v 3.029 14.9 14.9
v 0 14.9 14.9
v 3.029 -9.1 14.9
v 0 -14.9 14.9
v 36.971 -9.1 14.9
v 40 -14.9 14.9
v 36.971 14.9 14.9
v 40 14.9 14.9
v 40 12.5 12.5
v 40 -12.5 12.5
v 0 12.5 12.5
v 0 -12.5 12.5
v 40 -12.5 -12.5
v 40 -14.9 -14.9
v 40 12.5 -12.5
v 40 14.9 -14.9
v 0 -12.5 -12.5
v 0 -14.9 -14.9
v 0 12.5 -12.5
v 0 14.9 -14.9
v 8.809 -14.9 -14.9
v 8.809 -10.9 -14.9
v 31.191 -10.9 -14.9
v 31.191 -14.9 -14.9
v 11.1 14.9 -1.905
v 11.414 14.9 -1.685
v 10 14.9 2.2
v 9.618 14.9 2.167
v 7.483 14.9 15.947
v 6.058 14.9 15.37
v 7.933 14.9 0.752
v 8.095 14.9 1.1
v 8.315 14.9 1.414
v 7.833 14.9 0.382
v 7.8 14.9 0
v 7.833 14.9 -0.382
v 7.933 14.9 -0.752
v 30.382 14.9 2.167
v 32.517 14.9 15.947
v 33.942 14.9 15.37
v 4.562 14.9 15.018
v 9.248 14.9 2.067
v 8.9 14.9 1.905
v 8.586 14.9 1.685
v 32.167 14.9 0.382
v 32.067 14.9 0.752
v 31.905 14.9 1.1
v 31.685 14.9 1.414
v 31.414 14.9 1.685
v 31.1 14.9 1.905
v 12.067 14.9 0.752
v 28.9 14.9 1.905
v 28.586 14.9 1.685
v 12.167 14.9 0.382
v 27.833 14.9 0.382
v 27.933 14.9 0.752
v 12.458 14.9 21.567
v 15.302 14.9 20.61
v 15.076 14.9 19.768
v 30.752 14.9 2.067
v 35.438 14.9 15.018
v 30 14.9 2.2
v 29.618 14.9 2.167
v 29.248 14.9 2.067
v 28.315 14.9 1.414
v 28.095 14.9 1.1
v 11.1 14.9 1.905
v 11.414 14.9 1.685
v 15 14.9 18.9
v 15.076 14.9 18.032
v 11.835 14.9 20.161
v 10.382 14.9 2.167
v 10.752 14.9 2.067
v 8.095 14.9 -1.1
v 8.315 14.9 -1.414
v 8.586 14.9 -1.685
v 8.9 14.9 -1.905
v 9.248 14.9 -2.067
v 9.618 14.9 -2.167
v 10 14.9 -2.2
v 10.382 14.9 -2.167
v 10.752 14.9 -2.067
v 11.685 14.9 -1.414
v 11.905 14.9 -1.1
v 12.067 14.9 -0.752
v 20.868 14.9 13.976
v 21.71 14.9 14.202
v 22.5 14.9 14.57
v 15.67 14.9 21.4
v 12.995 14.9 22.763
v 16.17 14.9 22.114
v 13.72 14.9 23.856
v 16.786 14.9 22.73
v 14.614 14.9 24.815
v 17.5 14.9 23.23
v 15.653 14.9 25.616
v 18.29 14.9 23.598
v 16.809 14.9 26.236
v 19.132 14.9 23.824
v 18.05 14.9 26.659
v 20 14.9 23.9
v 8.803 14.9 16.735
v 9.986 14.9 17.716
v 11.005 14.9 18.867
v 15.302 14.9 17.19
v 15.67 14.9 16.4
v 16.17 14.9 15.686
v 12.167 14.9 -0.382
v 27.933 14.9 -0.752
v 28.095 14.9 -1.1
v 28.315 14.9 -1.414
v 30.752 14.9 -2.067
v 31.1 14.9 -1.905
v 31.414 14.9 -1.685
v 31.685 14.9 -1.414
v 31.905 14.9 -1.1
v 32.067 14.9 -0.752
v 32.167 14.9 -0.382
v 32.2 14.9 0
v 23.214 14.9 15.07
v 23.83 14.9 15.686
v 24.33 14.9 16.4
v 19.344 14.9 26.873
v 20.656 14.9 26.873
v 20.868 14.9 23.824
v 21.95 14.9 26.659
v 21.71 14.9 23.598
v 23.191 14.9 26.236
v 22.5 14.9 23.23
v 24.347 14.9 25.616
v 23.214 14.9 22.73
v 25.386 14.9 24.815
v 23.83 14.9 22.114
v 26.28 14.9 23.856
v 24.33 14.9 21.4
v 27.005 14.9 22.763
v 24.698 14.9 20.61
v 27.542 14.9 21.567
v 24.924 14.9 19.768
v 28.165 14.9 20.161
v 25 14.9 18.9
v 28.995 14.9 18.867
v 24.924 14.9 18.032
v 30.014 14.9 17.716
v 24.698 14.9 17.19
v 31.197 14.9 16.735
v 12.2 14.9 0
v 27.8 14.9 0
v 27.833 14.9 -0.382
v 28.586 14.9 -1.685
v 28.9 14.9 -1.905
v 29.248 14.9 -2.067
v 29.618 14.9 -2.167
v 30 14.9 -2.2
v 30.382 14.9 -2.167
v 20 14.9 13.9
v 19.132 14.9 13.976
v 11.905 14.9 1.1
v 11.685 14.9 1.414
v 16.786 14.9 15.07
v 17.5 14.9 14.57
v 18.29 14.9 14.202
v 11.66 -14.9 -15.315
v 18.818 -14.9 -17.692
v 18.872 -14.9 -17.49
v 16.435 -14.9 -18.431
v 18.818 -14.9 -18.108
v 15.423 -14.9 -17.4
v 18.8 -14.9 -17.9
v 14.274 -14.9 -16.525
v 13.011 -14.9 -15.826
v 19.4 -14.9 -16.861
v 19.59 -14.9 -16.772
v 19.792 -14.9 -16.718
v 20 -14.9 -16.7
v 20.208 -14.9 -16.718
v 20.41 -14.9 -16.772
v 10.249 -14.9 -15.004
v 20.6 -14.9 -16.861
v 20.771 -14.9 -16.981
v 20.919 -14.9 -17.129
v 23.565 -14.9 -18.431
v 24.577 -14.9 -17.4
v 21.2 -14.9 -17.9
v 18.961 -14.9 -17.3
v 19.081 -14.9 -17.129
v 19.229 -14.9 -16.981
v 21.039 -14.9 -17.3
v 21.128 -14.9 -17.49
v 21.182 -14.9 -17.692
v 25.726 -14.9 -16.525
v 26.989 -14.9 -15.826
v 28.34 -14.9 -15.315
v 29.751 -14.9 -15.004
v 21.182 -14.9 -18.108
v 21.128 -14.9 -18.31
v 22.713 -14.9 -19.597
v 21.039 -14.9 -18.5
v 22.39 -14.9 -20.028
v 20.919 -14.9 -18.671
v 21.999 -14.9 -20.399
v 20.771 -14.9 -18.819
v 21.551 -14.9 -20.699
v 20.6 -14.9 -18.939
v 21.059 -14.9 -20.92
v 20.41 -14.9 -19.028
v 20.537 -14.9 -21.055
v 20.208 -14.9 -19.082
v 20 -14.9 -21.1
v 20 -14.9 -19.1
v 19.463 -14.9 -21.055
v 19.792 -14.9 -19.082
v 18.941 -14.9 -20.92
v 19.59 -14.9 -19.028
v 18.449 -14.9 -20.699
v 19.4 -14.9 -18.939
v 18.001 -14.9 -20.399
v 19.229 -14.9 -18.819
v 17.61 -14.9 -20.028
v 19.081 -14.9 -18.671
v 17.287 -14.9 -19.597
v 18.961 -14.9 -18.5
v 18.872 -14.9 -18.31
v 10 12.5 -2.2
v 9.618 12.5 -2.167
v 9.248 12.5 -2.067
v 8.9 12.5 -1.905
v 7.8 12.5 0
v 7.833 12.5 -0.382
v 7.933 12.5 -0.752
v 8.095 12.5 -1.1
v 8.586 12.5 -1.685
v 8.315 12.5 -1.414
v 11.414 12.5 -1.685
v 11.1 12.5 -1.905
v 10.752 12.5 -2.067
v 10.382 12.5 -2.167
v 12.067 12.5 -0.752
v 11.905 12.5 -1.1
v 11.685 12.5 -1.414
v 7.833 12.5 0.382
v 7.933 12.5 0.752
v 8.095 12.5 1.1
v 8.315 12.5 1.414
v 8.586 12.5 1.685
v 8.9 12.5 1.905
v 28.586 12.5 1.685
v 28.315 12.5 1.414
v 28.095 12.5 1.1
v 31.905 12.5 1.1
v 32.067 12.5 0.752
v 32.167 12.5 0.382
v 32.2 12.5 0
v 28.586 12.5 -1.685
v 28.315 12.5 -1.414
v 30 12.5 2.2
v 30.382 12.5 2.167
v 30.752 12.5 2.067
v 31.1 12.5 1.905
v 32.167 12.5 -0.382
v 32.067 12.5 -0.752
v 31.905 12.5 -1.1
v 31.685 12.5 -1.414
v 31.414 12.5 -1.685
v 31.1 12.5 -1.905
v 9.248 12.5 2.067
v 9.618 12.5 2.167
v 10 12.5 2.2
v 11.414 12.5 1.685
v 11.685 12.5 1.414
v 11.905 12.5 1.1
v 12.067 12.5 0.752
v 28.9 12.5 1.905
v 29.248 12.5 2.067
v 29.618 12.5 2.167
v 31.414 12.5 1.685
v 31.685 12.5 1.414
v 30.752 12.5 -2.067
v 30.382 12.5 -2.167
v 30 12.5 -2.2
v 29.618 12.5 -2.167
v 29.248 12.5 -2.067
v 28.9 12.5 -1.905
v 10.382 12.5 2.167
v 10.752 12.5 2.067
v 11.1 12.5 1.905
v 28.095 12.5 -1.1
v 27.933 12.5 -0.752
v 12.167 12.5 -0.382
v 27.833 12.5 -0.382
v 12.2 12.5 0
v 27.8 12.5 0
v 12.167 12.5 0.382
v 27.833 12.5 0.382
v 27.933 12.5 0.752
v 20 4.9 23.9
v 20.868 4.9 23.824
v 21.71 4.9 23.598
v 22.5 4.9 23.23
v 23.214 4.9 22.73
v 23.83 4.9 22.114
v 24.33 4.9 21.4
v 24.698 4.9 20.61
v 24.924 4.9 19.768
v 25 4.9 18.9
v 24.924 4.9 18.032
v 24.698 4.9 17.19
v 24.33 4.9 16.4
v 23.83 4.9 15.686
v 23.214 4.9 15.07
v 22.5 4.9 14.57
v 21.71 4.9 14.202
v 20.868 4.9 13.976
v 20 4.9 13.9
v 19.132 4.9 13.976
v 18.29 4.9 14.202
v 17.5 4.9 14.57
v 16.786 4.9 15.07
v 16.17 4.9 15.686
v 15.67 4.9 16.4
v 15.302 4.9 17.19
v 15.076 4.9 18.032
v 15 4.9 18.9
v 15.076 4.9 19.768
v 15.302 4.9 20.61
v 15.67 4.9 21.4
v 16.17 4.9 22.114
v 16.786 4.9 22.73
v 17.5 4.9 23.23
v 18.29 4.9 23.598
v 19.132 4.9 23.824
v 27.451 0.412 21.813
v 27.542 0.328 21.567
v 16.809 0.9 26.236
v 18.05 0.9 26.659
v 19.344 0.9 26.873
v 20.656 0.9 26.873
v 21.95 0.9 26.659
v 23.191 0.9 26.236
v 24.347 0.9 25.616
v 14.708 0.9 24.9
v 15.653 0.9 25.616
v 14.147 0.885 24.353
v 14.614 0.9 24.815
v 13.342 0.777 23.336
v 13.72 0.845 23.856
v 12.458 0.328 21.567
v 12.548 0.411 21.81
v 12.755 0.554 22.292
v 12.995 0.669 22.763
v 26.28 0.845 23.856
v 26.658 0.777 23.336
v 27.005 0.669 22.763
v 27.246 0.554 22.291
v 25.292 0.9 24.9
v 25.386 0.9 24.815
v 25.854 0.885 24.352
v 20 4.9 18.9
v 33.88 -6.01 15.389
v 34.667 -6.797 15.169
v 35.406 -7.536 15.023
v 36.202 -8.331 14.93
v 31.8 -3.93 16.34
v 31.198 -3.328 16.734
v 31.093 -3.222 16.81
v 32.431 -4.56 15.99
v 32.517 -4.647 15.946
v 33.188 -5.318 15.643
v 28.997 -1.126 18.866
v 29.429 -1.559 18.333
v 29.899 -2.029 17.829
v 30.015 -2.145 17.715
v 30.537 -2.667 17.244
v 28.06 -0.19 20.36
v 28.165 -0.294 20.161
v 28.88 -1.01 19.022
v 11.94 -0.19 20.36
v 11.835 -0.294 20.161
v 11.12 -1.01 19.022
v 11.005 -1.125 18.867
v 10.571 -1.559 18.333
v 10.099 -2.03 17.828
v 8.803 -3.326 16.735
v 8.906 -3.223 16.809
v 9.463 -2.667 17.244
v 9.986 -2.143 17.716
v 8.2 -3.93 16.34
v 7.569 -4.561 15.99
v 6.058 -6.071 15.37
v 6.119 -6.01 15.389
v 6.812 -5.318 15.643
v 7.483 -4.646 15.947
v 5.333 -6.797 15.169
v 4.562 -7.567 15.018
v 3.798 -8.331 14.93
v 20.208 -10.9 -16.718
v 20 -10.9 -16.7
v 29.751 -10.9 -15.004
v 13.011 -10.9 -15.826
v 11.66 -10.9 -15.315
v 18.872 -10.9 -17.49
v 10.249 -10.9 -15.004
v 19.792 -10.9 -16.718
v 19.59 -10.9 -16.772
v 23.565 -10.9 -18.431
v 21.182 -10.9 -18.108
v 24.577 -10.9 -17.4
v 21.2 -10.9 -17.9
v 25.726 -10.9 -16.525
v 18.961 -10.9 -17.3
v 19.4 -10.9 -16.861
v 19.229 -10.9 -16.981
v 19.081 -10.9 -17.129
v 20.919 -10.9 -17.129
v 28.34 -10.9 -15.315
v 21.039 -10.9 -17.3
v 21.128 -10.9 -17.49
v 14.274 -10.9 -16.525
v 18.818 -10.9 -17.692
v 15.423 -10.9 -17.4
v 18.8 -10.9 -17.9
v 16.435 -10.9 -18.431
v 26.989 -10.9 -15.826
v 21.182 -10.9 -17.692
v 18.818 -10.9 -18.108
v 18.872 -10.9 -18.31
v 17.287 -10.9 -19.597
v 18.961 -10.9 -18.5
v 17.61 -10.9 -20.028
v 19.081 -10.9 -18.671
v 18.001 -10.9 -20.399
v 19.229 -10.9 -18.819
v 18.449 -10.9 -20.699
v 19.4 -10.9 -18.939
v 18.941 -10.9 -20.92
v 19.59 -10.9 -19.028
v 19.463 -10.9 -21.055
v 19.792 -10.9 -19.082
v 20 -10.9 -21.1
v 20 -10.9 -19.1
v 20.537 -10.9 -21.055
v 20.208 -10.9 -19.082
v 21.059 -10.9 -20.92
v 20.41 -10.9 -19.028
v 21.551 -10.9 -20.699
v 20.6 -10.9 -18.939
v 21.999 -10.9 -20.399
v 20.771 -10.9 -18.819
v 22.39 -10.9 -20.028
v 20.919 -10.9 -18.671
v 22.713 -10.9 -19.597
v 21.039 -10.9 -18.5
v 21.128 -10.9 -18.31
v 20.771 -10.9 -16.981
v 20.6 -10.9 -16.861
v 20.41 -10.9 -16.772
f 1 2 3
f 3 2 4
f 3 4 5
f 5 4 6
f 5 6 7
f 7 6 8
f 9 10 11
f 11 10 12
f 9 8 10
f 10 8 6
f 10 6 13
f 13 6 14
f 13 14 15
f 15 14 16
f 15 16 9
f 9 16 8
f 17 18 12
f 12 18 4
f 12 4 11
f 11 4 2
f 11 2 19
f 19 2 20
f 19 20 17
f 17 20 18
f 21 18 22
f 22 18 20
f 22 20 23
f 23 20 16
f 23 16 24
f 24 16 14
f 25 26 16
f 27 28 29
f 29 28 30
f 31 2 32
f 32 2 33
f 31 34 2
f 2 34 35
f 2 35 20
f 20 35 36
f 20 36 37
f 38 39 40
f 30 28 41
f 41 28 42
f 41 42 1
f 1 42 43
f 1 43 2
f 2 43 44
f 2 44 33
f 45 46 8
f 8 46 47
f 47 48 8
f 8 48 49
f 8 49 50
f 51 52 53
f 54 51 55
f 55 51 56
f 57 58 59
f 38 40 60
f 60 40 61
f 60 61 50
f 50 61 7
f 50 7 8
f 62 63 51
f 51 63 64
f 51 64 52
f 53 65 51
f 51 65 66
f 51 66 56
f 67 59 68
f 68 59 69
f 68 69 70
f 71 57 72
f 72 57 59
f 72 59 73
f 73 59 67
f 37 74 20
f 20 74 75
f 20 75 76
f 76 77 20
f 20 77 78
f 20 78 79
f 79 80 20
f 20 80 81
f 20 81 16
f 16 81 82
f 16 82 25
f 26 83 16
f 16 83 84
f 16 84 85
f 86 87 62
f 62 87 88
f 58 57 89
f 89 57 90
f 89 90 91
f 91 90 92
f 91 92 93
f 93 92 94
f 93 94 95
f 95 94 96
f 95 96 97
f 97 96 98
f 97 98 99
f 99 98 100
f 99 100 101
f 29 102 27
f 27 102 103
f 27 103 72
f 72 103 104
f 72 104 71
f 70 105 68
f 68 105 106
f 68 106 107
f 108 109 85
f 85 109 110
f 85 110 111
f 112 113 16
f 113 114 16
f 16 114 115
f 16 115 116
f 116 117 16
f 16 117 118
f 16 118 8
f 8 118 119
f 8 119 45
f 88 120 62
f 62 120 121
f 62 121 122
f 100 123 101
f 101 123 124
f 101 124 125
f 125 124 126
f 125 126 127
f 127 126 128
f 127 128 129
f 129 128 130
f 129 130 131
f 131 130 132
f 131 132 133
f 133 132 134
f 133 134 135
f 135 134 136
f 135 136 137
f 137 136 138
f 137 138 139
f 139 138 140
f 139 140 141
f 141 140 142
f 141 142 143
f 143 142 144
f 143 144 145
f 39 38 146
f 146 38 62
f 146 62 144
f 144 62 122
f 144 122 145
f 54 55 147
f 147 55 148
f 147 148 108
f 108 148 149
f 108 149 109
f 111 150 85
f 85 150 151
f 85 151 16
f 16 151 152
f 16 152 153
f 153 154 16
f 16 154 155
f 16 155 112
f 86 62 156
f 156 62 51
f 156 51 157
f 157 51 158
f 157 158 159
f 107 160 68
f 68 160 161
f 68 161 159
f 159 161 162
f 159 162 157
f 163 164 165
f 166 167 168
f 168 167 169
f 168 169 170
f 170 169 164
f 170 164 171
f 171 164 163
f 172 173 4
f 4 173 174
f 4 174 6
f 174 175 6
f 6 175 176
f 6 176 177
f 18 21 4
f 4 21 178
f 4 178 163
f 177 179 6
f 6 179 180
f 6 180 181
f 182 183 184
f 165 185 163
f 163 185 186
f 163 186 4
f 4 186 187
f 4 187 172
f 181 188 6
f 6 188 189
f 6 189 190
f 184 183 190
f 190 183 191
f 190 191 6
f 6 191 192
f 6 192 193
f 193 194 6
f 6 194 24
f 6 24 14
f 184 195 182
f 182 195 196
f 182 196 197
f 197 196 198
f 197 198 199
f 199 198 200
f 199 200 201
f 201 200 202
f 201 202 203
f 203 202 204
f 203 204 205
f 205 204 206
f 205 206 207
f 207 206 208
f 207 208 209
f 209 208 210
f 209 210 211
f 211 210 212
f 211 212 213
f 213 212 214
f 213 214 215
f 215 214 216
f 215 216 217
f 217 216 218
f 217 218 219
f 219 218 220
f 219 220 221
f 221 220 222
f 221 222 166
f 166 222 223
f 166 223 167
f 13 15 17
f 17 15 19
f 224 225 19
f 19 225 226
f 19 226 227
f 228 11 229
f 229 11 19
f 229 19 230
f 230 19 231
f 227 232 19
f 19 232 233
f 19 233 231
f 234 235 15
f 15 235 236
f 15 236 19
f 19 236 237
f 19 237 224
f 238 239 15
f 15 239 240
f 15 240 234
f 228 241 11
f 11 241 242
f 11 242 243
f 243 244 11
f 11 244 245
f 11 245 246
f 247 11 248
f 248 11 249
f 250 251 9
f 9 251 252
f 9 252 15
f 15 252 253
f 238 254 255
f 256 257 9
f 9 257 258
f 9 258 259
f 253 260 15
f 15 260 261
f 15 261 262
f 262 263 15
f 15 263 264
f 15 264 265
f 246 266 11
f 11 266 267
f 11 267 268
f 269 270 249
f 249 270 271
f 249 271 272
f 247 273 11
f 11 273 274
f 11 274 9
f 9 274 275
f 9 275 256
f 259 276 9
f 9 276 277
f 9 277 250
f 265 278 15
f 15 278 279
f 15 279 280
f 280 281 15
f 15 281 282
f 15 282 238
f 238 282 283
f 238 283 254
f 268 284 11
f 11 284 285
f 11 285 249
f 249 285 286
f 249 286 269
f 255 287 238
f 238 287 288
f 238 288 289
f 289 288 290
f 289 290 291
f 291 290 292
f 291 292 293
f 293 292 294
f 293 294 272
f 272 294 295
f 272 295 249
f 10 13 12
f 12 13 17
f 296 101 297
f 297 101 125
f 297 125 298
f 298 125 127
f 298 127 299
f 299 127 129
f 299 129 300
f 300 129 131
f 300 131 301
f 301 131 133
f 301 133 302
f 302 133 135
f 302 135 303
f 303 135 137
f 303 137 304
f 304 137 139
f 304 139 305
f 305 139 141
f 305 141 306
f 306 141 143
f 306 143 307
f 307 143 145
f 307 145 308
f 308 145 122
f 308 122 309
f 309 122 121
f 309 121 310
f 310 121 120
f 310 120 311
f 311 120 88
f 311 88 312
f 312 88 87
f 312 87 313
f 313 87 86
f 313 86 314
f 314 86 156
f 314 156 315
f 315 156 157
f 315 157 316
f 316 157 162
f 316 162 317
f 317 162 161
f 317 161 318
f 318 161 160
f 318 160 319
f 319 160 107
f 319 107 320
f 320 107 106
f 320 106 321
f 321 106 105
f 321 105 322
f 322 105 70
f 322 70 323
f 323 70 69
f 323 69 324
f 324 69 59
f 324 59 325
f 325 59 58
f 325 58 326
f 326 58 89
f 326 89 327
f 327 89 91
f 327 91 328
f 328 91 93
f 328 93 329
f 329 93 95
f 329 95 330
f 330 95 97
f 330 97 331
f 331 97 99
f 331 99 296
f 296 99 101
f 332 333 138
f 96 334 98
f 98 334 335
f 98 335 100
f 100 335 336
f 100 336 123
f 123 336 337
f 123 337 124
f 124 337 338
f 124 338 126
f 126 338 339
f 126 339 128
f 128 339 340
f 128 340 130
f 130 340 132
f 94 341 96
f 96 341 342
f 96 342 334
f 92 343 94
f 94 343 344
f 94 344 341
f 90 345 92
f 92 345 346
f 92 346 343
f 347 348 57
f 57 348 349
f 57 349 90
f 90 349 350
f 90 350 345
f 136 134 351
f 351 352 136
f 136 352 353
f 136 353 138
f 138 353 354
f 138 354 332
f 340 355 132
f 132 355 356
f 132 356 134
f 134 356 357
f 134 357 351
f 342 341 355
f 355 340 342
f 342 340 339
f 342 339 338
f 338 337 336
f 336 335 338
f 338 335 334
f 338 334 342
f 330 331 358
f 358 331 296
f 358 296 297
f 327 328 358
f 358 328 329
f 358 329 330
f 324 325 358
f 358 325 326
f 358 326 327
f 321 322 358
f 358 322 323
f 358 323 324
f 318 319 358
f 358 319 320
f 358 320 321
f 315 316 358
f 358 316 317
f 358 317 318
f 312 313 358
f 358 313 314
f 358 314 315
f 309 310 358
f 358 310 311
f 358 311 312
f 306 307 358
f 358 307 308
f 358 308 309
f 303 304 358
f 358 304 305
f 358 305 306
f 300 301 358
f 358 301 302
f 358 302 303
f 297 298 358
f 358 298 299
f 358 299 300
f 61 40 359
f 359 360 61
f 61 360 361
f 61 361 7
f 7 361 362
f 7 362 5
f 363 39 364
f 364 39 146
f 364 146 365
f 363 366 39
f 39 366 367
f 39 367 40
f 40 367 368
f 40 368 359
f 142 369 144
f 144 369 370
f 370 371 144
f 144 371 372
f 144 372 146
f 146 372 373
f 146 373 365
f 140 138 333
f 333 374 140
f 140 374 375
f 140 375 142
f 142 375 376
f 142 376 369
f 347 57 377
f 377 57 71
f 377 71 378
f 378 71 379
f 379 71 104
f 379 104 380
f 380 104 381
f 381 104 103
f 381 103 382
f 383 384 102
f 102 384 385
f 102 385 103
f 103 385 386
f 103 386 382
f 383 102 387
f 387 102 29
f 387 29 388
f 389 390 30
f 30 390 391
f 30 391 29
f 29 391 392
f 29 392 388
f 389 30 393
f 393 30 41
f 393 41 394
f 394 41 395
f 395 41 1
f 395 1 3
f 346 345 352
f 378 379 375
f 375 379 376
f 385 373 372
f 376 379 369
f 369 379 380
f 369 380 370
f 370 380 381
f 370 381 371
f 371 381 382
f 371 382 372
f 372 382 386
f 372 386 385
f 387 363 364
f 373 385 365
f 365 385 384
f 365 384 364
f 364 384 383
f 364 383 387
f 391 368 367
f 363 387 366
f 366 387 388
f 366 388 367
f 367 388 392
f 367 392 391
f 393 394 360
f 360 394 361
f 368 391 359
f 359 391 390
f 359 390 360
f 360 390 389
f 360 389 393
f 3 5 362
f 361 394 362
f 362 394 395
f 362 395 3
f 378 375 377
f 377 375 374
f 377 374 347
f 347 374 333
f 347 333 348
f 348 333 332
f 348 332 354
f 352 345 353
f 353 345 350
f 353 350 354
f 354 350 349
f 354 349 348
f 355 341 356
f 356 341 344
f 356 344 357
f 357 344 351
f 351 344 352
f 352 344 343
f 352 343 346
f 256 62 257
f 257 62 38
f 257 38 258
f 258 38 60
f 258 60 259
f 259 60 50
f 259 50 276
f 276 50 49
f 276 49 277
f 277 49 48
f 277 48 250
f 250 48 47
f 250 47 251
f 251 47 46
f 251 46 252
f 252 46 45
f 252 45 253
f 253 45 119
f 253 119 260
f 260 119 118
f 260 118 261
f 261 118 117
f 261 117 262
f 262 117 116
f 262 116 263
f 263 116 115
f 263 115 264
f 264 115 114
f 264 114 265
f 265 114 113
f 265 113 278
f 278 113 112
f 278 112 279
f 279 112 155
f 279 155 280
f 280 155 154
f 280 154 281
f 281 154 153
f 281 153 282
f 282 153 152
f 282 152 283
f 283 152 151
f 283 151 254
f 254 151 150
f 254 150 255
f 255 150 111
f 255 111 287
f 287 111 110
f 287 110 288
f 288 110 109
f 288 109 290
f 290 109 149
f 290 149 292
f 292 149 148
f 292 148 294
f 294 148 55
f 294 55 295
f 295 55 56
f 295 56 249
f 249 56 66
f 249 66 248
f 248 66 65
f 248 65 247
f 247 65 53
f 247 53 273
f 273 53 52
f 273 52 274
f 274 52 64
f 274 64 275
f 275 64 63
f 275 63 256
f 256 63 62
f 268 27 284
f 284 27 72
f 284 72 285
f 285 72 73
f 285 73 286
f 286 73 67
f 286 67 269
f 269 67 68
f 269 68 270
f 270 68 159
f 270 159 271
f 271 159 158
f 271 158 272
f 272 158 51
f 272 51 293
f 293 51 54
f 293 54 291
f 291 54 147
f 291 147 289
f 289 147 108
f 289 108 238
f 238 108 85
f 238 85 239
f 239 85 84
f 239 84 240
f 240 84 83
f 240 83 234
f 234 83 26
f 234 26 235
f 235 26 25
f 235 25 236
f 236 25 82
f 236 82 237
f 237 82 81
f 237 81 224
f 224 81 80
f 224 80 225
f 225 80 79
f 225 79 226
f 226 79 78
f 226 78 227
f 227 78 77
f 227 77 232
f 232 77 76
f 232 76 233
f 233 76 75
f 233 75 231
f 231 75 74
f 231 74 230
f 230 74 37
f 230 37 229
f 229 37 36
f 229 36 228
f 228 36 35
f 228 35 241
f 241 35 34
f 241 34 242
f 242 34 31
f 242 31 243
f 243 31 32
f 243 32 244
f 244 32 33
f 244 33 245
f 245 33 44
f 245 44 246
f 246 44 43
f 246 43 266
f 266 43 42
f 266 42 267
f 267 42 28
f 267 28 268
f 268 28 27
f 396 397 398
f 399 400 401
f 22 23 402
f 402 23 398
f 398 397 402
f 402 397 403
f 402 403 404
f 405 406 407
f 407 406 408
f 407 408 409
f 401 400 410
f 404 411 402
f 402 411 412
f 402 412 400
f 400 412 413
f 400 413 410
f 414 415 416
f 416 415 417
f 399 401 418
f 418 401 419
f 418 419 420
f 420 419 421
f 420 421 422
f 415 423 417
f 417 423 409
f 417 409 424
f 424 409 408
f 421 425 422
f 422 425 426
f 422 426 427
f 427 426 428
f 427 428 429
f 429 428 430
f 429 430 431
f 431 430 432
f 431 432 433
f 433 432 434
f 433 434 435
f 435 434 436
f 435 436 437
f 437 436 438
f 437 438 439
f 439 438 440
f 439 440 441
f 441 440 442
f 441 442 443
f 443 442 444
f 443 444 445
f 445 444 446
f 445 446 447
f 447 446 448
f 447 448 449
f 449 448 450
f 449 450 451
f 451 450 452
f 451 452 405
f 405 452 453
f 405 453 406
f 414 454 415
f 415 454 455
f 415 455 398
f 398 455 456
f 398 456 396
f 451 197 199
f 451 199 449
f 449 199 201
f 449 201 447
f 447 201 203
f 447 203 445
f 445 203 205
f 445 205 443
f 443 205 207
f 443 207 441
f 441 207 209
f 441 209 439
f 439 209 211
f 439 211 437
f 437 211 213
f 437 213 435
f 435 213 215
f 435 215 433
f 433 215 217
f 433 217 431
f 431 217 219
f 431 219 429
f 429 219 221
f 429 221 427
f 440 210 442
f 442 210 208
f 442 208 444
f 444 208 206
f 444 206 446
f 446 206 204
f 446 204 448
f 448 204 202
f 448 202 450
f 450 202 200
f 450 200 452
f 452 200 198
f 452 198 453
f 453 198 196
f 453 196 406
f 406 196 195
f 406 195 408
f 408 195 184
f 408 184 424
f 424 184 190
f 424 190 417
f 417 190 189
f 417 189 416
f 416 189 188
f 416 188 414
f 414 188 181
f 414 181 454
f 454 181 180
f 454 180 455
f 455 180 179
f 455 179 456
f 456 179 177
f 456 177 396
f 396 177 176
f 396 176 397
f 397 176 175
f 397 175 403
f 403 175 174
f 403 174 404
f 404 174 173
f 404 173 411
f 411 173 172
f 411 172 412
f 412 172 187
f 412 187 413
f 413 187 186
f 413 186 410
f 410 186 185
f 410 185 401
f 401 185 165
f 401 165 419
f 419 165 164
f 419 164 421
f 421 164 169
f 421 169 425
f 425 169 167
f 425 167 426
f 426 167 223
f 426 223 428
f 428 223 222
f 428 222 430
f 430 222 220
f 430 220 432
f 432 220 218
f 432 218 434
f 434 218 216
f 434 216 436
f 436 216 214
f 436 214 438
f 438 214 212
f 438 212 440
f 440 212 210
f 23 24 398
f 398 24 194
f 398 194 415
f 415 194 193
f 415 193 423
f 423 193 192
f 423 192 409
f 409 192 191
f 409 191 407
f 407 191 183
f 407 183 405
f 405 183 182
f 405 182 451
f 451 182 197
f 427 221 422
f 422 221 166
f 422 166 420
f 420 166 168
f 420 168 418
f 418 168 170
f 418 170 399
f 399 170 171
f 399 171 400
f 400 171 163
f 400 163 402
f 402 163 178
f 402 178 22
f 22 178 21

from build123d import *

# Parameters (mm, degrees)
SKETCH_1_W          = 29.8
SKETCH_1_H          = 29.8
SKETCH_1_W_2        = 25
SKETCH_1_H_2        = 25
EXTRUDE_1_DEPTH     = 40
SKETCH_2_R          = 8
SKETCH_2_R_2        = 5
EXTRUDE_1_2_DEPTH   = 10
SKETCH_3_R          = 8
EXTRUDE_2_DEPTH     = 4
FILLET_1_R          = 10
CUT_EXTRUDE_1_REACH = 58.671
SKETCH_4_R          = 2.2
SKETCH_5_R          = 5
CUT_EXTRUDE_2_DEPTH = 10
CUT_EXTRUDE_3_REACH = 52.454
SKETCH_6_W          = 25
SKETCH_6_H          = 25
SKETCH_7_R          = 3.2
SKETCH_7_R_2        = 1.2
EXTRUDE_3_DEPTH     = 4
FILLET_2_R          = 10


with BuildPart() as part:
    # Эскиз1 → Extrude 1 (new body)
    with BuildSketch(Plane(origin=(0, 0, 0), x_dir=(0, 0, -1), z_dir=(1, 0, 0))):
        Rectangle(SKETCH_1_W, SKETCH_1_H)
        Rectangle(SKETCH_1_W_2, SKETCH_1_H_2, mode=Mode.SUBTRACT)
    extrude(amount=EXTRUDE_1_DEPTH)

    # Эскиз2 → Extrude 1 2 (add)
    with BuildSketch(Plane(origin=(0, 14.9, 0), x_dir=(1, 0, 0), z_dir=(0, 1, 0))):
        with Locations((20, -18.9)):
            Circle(SKETCH_2_R)
        with Locations((20, -18.9)):
            Circle(SKETCH_2_R_2, mode=Mode.SUBTRACT)
    extrude(amount=-EXTRUDE_1_2_DEPTH)

    # Эскиз3 → Бобышка-Вытянуть2 (add)
    with BuildSketch(Plane.XZ.offset(-4.9)):
        with Locations((20, 18.9)):
            Circle(SKETCH_3_R)
    extrude(amount=EXTRUDE_2_DEPTH)

    # Скругление1
    fillet_1_edges = [part.edges().sort_by_distance(p)[0] for p in [
        (13.07179677, 7.9, 14.9),
        (26.92820323, 7.9, 14.9),
        (20, 0.9, 14.9),
    ]]
    fillet(fillet_1_edges, radius=FILLET_1_R)

    # Эскиз4 → Вырез-Вытянуть1 (cut, up to next)
    with BuildSketch(Plane(origin=(0, 14.9, 0), x_dir=(1, 0, 0), z_dir=(0, 1, 0)), mode=Mode.PRIVATE) as cut_extrude_1_sk1:
        with Locations(Location((10, 0, 0), (0, 0, 270))):
            Circle(SKETCH_4_R)
    cut_extrude_1_tool1 = extrude(cut_extrude_1_sk1.sketch, amount=-CUT_EXTRUDE_1_REACH, mode=Mode.PRIVATE) & part.part
    # Эскиз4 → Вырез-Вытянуть1 (cut, up to next)
    with BuildSketch(Plane(origin=(0, 14.9, 0), x_dir=(1, 0, 0), z_dir=(0, 1, 0)), mode=Mode.PRIVATE) as cut_extrude_1_sk2:
        with Locations(Location((30, 0, 0), (0, 0, 270))):
            Circle(SKETCH_4_R)
    cut_extrude_1_tool2 = extrude(cut_extrude_1_sk2.sketch, amount=-CUT_EXTRUDE_1_REACH, mode=Mode.PRIVATE) & part.part
    add(cut_extrude_1_tool1.solids().sort_by_distance((10, 14.9, 0))[0], mode=Mode.SUBTRACT)
    add(cut_extrude_1_tool2.solids().sort_by_distance((30, 14.9, 0))[0], mode=Mode.SUBTRACT)

    # Эскиз5 → Вырез-Вытянуть2 (cut)
    with BuildSketch(Plane(origin=(0, 14.9, 0), x_dir=(1, 0, 0), z_dir=(0, 1, 0))):
        with Locations(Location((20, -18.9, 0), (0, 0, 270))):
            Circle(SKETCH_5_R)
    extrude(amount=-CUT_EXTRUDE_2_DEPTH, mode=Mode.SUBTRACT)

    # Эскиз6 → Вырез-Вытянуть3 (cut, up to next)
    with BuildSketch(Plane(origin=(40, 0, 0), x_dir=(0, 0, -1), z_dir=(1, 0, 0)), mode=Mode.PRIVATE) as cut_extrude_3_sk1:
        Rectangle(SKETCH_6_W, SKETCH_6_H)
    cut_extrude_3_tool1 = extrude(cut_extrude_3_sk1.sketch, amount=-CUT_EXTRUDE_3_REACH, mode=Mode.PRIVATE) & part.part
    add(cut_extrude_3_tool1.solids().sort_by_distance((40, 0, 0))[0], mode=Mode.SUBTRACT)

    # Эскиз7 → Бобышка-Вытянуть3 (add)
    with BuildSketch(Plane.XZ.offset(14.9)):
        with Locations((20, -17.9)):
            Circle(SKETCH_7_R)
        with Locations(Location((20, -17.9, 0), (0, 0, 270))):
            Circle(SKETCH_7_R_2, mode=Mode.SUBTRACT)
    extrude(amount=-EXTRUDE_3_DEPTH)

    # Скругление2
    fillet_2_edges = [part.edges().sort_by_distance(p)[0] for p in [
        (18.886447127, -12.9, -14.9),
        (21.113552873, -12.9, -14.9),
    ]]
    fillet(fillet_2_edges, radius=FILLET_2_R)


solid = part.part
